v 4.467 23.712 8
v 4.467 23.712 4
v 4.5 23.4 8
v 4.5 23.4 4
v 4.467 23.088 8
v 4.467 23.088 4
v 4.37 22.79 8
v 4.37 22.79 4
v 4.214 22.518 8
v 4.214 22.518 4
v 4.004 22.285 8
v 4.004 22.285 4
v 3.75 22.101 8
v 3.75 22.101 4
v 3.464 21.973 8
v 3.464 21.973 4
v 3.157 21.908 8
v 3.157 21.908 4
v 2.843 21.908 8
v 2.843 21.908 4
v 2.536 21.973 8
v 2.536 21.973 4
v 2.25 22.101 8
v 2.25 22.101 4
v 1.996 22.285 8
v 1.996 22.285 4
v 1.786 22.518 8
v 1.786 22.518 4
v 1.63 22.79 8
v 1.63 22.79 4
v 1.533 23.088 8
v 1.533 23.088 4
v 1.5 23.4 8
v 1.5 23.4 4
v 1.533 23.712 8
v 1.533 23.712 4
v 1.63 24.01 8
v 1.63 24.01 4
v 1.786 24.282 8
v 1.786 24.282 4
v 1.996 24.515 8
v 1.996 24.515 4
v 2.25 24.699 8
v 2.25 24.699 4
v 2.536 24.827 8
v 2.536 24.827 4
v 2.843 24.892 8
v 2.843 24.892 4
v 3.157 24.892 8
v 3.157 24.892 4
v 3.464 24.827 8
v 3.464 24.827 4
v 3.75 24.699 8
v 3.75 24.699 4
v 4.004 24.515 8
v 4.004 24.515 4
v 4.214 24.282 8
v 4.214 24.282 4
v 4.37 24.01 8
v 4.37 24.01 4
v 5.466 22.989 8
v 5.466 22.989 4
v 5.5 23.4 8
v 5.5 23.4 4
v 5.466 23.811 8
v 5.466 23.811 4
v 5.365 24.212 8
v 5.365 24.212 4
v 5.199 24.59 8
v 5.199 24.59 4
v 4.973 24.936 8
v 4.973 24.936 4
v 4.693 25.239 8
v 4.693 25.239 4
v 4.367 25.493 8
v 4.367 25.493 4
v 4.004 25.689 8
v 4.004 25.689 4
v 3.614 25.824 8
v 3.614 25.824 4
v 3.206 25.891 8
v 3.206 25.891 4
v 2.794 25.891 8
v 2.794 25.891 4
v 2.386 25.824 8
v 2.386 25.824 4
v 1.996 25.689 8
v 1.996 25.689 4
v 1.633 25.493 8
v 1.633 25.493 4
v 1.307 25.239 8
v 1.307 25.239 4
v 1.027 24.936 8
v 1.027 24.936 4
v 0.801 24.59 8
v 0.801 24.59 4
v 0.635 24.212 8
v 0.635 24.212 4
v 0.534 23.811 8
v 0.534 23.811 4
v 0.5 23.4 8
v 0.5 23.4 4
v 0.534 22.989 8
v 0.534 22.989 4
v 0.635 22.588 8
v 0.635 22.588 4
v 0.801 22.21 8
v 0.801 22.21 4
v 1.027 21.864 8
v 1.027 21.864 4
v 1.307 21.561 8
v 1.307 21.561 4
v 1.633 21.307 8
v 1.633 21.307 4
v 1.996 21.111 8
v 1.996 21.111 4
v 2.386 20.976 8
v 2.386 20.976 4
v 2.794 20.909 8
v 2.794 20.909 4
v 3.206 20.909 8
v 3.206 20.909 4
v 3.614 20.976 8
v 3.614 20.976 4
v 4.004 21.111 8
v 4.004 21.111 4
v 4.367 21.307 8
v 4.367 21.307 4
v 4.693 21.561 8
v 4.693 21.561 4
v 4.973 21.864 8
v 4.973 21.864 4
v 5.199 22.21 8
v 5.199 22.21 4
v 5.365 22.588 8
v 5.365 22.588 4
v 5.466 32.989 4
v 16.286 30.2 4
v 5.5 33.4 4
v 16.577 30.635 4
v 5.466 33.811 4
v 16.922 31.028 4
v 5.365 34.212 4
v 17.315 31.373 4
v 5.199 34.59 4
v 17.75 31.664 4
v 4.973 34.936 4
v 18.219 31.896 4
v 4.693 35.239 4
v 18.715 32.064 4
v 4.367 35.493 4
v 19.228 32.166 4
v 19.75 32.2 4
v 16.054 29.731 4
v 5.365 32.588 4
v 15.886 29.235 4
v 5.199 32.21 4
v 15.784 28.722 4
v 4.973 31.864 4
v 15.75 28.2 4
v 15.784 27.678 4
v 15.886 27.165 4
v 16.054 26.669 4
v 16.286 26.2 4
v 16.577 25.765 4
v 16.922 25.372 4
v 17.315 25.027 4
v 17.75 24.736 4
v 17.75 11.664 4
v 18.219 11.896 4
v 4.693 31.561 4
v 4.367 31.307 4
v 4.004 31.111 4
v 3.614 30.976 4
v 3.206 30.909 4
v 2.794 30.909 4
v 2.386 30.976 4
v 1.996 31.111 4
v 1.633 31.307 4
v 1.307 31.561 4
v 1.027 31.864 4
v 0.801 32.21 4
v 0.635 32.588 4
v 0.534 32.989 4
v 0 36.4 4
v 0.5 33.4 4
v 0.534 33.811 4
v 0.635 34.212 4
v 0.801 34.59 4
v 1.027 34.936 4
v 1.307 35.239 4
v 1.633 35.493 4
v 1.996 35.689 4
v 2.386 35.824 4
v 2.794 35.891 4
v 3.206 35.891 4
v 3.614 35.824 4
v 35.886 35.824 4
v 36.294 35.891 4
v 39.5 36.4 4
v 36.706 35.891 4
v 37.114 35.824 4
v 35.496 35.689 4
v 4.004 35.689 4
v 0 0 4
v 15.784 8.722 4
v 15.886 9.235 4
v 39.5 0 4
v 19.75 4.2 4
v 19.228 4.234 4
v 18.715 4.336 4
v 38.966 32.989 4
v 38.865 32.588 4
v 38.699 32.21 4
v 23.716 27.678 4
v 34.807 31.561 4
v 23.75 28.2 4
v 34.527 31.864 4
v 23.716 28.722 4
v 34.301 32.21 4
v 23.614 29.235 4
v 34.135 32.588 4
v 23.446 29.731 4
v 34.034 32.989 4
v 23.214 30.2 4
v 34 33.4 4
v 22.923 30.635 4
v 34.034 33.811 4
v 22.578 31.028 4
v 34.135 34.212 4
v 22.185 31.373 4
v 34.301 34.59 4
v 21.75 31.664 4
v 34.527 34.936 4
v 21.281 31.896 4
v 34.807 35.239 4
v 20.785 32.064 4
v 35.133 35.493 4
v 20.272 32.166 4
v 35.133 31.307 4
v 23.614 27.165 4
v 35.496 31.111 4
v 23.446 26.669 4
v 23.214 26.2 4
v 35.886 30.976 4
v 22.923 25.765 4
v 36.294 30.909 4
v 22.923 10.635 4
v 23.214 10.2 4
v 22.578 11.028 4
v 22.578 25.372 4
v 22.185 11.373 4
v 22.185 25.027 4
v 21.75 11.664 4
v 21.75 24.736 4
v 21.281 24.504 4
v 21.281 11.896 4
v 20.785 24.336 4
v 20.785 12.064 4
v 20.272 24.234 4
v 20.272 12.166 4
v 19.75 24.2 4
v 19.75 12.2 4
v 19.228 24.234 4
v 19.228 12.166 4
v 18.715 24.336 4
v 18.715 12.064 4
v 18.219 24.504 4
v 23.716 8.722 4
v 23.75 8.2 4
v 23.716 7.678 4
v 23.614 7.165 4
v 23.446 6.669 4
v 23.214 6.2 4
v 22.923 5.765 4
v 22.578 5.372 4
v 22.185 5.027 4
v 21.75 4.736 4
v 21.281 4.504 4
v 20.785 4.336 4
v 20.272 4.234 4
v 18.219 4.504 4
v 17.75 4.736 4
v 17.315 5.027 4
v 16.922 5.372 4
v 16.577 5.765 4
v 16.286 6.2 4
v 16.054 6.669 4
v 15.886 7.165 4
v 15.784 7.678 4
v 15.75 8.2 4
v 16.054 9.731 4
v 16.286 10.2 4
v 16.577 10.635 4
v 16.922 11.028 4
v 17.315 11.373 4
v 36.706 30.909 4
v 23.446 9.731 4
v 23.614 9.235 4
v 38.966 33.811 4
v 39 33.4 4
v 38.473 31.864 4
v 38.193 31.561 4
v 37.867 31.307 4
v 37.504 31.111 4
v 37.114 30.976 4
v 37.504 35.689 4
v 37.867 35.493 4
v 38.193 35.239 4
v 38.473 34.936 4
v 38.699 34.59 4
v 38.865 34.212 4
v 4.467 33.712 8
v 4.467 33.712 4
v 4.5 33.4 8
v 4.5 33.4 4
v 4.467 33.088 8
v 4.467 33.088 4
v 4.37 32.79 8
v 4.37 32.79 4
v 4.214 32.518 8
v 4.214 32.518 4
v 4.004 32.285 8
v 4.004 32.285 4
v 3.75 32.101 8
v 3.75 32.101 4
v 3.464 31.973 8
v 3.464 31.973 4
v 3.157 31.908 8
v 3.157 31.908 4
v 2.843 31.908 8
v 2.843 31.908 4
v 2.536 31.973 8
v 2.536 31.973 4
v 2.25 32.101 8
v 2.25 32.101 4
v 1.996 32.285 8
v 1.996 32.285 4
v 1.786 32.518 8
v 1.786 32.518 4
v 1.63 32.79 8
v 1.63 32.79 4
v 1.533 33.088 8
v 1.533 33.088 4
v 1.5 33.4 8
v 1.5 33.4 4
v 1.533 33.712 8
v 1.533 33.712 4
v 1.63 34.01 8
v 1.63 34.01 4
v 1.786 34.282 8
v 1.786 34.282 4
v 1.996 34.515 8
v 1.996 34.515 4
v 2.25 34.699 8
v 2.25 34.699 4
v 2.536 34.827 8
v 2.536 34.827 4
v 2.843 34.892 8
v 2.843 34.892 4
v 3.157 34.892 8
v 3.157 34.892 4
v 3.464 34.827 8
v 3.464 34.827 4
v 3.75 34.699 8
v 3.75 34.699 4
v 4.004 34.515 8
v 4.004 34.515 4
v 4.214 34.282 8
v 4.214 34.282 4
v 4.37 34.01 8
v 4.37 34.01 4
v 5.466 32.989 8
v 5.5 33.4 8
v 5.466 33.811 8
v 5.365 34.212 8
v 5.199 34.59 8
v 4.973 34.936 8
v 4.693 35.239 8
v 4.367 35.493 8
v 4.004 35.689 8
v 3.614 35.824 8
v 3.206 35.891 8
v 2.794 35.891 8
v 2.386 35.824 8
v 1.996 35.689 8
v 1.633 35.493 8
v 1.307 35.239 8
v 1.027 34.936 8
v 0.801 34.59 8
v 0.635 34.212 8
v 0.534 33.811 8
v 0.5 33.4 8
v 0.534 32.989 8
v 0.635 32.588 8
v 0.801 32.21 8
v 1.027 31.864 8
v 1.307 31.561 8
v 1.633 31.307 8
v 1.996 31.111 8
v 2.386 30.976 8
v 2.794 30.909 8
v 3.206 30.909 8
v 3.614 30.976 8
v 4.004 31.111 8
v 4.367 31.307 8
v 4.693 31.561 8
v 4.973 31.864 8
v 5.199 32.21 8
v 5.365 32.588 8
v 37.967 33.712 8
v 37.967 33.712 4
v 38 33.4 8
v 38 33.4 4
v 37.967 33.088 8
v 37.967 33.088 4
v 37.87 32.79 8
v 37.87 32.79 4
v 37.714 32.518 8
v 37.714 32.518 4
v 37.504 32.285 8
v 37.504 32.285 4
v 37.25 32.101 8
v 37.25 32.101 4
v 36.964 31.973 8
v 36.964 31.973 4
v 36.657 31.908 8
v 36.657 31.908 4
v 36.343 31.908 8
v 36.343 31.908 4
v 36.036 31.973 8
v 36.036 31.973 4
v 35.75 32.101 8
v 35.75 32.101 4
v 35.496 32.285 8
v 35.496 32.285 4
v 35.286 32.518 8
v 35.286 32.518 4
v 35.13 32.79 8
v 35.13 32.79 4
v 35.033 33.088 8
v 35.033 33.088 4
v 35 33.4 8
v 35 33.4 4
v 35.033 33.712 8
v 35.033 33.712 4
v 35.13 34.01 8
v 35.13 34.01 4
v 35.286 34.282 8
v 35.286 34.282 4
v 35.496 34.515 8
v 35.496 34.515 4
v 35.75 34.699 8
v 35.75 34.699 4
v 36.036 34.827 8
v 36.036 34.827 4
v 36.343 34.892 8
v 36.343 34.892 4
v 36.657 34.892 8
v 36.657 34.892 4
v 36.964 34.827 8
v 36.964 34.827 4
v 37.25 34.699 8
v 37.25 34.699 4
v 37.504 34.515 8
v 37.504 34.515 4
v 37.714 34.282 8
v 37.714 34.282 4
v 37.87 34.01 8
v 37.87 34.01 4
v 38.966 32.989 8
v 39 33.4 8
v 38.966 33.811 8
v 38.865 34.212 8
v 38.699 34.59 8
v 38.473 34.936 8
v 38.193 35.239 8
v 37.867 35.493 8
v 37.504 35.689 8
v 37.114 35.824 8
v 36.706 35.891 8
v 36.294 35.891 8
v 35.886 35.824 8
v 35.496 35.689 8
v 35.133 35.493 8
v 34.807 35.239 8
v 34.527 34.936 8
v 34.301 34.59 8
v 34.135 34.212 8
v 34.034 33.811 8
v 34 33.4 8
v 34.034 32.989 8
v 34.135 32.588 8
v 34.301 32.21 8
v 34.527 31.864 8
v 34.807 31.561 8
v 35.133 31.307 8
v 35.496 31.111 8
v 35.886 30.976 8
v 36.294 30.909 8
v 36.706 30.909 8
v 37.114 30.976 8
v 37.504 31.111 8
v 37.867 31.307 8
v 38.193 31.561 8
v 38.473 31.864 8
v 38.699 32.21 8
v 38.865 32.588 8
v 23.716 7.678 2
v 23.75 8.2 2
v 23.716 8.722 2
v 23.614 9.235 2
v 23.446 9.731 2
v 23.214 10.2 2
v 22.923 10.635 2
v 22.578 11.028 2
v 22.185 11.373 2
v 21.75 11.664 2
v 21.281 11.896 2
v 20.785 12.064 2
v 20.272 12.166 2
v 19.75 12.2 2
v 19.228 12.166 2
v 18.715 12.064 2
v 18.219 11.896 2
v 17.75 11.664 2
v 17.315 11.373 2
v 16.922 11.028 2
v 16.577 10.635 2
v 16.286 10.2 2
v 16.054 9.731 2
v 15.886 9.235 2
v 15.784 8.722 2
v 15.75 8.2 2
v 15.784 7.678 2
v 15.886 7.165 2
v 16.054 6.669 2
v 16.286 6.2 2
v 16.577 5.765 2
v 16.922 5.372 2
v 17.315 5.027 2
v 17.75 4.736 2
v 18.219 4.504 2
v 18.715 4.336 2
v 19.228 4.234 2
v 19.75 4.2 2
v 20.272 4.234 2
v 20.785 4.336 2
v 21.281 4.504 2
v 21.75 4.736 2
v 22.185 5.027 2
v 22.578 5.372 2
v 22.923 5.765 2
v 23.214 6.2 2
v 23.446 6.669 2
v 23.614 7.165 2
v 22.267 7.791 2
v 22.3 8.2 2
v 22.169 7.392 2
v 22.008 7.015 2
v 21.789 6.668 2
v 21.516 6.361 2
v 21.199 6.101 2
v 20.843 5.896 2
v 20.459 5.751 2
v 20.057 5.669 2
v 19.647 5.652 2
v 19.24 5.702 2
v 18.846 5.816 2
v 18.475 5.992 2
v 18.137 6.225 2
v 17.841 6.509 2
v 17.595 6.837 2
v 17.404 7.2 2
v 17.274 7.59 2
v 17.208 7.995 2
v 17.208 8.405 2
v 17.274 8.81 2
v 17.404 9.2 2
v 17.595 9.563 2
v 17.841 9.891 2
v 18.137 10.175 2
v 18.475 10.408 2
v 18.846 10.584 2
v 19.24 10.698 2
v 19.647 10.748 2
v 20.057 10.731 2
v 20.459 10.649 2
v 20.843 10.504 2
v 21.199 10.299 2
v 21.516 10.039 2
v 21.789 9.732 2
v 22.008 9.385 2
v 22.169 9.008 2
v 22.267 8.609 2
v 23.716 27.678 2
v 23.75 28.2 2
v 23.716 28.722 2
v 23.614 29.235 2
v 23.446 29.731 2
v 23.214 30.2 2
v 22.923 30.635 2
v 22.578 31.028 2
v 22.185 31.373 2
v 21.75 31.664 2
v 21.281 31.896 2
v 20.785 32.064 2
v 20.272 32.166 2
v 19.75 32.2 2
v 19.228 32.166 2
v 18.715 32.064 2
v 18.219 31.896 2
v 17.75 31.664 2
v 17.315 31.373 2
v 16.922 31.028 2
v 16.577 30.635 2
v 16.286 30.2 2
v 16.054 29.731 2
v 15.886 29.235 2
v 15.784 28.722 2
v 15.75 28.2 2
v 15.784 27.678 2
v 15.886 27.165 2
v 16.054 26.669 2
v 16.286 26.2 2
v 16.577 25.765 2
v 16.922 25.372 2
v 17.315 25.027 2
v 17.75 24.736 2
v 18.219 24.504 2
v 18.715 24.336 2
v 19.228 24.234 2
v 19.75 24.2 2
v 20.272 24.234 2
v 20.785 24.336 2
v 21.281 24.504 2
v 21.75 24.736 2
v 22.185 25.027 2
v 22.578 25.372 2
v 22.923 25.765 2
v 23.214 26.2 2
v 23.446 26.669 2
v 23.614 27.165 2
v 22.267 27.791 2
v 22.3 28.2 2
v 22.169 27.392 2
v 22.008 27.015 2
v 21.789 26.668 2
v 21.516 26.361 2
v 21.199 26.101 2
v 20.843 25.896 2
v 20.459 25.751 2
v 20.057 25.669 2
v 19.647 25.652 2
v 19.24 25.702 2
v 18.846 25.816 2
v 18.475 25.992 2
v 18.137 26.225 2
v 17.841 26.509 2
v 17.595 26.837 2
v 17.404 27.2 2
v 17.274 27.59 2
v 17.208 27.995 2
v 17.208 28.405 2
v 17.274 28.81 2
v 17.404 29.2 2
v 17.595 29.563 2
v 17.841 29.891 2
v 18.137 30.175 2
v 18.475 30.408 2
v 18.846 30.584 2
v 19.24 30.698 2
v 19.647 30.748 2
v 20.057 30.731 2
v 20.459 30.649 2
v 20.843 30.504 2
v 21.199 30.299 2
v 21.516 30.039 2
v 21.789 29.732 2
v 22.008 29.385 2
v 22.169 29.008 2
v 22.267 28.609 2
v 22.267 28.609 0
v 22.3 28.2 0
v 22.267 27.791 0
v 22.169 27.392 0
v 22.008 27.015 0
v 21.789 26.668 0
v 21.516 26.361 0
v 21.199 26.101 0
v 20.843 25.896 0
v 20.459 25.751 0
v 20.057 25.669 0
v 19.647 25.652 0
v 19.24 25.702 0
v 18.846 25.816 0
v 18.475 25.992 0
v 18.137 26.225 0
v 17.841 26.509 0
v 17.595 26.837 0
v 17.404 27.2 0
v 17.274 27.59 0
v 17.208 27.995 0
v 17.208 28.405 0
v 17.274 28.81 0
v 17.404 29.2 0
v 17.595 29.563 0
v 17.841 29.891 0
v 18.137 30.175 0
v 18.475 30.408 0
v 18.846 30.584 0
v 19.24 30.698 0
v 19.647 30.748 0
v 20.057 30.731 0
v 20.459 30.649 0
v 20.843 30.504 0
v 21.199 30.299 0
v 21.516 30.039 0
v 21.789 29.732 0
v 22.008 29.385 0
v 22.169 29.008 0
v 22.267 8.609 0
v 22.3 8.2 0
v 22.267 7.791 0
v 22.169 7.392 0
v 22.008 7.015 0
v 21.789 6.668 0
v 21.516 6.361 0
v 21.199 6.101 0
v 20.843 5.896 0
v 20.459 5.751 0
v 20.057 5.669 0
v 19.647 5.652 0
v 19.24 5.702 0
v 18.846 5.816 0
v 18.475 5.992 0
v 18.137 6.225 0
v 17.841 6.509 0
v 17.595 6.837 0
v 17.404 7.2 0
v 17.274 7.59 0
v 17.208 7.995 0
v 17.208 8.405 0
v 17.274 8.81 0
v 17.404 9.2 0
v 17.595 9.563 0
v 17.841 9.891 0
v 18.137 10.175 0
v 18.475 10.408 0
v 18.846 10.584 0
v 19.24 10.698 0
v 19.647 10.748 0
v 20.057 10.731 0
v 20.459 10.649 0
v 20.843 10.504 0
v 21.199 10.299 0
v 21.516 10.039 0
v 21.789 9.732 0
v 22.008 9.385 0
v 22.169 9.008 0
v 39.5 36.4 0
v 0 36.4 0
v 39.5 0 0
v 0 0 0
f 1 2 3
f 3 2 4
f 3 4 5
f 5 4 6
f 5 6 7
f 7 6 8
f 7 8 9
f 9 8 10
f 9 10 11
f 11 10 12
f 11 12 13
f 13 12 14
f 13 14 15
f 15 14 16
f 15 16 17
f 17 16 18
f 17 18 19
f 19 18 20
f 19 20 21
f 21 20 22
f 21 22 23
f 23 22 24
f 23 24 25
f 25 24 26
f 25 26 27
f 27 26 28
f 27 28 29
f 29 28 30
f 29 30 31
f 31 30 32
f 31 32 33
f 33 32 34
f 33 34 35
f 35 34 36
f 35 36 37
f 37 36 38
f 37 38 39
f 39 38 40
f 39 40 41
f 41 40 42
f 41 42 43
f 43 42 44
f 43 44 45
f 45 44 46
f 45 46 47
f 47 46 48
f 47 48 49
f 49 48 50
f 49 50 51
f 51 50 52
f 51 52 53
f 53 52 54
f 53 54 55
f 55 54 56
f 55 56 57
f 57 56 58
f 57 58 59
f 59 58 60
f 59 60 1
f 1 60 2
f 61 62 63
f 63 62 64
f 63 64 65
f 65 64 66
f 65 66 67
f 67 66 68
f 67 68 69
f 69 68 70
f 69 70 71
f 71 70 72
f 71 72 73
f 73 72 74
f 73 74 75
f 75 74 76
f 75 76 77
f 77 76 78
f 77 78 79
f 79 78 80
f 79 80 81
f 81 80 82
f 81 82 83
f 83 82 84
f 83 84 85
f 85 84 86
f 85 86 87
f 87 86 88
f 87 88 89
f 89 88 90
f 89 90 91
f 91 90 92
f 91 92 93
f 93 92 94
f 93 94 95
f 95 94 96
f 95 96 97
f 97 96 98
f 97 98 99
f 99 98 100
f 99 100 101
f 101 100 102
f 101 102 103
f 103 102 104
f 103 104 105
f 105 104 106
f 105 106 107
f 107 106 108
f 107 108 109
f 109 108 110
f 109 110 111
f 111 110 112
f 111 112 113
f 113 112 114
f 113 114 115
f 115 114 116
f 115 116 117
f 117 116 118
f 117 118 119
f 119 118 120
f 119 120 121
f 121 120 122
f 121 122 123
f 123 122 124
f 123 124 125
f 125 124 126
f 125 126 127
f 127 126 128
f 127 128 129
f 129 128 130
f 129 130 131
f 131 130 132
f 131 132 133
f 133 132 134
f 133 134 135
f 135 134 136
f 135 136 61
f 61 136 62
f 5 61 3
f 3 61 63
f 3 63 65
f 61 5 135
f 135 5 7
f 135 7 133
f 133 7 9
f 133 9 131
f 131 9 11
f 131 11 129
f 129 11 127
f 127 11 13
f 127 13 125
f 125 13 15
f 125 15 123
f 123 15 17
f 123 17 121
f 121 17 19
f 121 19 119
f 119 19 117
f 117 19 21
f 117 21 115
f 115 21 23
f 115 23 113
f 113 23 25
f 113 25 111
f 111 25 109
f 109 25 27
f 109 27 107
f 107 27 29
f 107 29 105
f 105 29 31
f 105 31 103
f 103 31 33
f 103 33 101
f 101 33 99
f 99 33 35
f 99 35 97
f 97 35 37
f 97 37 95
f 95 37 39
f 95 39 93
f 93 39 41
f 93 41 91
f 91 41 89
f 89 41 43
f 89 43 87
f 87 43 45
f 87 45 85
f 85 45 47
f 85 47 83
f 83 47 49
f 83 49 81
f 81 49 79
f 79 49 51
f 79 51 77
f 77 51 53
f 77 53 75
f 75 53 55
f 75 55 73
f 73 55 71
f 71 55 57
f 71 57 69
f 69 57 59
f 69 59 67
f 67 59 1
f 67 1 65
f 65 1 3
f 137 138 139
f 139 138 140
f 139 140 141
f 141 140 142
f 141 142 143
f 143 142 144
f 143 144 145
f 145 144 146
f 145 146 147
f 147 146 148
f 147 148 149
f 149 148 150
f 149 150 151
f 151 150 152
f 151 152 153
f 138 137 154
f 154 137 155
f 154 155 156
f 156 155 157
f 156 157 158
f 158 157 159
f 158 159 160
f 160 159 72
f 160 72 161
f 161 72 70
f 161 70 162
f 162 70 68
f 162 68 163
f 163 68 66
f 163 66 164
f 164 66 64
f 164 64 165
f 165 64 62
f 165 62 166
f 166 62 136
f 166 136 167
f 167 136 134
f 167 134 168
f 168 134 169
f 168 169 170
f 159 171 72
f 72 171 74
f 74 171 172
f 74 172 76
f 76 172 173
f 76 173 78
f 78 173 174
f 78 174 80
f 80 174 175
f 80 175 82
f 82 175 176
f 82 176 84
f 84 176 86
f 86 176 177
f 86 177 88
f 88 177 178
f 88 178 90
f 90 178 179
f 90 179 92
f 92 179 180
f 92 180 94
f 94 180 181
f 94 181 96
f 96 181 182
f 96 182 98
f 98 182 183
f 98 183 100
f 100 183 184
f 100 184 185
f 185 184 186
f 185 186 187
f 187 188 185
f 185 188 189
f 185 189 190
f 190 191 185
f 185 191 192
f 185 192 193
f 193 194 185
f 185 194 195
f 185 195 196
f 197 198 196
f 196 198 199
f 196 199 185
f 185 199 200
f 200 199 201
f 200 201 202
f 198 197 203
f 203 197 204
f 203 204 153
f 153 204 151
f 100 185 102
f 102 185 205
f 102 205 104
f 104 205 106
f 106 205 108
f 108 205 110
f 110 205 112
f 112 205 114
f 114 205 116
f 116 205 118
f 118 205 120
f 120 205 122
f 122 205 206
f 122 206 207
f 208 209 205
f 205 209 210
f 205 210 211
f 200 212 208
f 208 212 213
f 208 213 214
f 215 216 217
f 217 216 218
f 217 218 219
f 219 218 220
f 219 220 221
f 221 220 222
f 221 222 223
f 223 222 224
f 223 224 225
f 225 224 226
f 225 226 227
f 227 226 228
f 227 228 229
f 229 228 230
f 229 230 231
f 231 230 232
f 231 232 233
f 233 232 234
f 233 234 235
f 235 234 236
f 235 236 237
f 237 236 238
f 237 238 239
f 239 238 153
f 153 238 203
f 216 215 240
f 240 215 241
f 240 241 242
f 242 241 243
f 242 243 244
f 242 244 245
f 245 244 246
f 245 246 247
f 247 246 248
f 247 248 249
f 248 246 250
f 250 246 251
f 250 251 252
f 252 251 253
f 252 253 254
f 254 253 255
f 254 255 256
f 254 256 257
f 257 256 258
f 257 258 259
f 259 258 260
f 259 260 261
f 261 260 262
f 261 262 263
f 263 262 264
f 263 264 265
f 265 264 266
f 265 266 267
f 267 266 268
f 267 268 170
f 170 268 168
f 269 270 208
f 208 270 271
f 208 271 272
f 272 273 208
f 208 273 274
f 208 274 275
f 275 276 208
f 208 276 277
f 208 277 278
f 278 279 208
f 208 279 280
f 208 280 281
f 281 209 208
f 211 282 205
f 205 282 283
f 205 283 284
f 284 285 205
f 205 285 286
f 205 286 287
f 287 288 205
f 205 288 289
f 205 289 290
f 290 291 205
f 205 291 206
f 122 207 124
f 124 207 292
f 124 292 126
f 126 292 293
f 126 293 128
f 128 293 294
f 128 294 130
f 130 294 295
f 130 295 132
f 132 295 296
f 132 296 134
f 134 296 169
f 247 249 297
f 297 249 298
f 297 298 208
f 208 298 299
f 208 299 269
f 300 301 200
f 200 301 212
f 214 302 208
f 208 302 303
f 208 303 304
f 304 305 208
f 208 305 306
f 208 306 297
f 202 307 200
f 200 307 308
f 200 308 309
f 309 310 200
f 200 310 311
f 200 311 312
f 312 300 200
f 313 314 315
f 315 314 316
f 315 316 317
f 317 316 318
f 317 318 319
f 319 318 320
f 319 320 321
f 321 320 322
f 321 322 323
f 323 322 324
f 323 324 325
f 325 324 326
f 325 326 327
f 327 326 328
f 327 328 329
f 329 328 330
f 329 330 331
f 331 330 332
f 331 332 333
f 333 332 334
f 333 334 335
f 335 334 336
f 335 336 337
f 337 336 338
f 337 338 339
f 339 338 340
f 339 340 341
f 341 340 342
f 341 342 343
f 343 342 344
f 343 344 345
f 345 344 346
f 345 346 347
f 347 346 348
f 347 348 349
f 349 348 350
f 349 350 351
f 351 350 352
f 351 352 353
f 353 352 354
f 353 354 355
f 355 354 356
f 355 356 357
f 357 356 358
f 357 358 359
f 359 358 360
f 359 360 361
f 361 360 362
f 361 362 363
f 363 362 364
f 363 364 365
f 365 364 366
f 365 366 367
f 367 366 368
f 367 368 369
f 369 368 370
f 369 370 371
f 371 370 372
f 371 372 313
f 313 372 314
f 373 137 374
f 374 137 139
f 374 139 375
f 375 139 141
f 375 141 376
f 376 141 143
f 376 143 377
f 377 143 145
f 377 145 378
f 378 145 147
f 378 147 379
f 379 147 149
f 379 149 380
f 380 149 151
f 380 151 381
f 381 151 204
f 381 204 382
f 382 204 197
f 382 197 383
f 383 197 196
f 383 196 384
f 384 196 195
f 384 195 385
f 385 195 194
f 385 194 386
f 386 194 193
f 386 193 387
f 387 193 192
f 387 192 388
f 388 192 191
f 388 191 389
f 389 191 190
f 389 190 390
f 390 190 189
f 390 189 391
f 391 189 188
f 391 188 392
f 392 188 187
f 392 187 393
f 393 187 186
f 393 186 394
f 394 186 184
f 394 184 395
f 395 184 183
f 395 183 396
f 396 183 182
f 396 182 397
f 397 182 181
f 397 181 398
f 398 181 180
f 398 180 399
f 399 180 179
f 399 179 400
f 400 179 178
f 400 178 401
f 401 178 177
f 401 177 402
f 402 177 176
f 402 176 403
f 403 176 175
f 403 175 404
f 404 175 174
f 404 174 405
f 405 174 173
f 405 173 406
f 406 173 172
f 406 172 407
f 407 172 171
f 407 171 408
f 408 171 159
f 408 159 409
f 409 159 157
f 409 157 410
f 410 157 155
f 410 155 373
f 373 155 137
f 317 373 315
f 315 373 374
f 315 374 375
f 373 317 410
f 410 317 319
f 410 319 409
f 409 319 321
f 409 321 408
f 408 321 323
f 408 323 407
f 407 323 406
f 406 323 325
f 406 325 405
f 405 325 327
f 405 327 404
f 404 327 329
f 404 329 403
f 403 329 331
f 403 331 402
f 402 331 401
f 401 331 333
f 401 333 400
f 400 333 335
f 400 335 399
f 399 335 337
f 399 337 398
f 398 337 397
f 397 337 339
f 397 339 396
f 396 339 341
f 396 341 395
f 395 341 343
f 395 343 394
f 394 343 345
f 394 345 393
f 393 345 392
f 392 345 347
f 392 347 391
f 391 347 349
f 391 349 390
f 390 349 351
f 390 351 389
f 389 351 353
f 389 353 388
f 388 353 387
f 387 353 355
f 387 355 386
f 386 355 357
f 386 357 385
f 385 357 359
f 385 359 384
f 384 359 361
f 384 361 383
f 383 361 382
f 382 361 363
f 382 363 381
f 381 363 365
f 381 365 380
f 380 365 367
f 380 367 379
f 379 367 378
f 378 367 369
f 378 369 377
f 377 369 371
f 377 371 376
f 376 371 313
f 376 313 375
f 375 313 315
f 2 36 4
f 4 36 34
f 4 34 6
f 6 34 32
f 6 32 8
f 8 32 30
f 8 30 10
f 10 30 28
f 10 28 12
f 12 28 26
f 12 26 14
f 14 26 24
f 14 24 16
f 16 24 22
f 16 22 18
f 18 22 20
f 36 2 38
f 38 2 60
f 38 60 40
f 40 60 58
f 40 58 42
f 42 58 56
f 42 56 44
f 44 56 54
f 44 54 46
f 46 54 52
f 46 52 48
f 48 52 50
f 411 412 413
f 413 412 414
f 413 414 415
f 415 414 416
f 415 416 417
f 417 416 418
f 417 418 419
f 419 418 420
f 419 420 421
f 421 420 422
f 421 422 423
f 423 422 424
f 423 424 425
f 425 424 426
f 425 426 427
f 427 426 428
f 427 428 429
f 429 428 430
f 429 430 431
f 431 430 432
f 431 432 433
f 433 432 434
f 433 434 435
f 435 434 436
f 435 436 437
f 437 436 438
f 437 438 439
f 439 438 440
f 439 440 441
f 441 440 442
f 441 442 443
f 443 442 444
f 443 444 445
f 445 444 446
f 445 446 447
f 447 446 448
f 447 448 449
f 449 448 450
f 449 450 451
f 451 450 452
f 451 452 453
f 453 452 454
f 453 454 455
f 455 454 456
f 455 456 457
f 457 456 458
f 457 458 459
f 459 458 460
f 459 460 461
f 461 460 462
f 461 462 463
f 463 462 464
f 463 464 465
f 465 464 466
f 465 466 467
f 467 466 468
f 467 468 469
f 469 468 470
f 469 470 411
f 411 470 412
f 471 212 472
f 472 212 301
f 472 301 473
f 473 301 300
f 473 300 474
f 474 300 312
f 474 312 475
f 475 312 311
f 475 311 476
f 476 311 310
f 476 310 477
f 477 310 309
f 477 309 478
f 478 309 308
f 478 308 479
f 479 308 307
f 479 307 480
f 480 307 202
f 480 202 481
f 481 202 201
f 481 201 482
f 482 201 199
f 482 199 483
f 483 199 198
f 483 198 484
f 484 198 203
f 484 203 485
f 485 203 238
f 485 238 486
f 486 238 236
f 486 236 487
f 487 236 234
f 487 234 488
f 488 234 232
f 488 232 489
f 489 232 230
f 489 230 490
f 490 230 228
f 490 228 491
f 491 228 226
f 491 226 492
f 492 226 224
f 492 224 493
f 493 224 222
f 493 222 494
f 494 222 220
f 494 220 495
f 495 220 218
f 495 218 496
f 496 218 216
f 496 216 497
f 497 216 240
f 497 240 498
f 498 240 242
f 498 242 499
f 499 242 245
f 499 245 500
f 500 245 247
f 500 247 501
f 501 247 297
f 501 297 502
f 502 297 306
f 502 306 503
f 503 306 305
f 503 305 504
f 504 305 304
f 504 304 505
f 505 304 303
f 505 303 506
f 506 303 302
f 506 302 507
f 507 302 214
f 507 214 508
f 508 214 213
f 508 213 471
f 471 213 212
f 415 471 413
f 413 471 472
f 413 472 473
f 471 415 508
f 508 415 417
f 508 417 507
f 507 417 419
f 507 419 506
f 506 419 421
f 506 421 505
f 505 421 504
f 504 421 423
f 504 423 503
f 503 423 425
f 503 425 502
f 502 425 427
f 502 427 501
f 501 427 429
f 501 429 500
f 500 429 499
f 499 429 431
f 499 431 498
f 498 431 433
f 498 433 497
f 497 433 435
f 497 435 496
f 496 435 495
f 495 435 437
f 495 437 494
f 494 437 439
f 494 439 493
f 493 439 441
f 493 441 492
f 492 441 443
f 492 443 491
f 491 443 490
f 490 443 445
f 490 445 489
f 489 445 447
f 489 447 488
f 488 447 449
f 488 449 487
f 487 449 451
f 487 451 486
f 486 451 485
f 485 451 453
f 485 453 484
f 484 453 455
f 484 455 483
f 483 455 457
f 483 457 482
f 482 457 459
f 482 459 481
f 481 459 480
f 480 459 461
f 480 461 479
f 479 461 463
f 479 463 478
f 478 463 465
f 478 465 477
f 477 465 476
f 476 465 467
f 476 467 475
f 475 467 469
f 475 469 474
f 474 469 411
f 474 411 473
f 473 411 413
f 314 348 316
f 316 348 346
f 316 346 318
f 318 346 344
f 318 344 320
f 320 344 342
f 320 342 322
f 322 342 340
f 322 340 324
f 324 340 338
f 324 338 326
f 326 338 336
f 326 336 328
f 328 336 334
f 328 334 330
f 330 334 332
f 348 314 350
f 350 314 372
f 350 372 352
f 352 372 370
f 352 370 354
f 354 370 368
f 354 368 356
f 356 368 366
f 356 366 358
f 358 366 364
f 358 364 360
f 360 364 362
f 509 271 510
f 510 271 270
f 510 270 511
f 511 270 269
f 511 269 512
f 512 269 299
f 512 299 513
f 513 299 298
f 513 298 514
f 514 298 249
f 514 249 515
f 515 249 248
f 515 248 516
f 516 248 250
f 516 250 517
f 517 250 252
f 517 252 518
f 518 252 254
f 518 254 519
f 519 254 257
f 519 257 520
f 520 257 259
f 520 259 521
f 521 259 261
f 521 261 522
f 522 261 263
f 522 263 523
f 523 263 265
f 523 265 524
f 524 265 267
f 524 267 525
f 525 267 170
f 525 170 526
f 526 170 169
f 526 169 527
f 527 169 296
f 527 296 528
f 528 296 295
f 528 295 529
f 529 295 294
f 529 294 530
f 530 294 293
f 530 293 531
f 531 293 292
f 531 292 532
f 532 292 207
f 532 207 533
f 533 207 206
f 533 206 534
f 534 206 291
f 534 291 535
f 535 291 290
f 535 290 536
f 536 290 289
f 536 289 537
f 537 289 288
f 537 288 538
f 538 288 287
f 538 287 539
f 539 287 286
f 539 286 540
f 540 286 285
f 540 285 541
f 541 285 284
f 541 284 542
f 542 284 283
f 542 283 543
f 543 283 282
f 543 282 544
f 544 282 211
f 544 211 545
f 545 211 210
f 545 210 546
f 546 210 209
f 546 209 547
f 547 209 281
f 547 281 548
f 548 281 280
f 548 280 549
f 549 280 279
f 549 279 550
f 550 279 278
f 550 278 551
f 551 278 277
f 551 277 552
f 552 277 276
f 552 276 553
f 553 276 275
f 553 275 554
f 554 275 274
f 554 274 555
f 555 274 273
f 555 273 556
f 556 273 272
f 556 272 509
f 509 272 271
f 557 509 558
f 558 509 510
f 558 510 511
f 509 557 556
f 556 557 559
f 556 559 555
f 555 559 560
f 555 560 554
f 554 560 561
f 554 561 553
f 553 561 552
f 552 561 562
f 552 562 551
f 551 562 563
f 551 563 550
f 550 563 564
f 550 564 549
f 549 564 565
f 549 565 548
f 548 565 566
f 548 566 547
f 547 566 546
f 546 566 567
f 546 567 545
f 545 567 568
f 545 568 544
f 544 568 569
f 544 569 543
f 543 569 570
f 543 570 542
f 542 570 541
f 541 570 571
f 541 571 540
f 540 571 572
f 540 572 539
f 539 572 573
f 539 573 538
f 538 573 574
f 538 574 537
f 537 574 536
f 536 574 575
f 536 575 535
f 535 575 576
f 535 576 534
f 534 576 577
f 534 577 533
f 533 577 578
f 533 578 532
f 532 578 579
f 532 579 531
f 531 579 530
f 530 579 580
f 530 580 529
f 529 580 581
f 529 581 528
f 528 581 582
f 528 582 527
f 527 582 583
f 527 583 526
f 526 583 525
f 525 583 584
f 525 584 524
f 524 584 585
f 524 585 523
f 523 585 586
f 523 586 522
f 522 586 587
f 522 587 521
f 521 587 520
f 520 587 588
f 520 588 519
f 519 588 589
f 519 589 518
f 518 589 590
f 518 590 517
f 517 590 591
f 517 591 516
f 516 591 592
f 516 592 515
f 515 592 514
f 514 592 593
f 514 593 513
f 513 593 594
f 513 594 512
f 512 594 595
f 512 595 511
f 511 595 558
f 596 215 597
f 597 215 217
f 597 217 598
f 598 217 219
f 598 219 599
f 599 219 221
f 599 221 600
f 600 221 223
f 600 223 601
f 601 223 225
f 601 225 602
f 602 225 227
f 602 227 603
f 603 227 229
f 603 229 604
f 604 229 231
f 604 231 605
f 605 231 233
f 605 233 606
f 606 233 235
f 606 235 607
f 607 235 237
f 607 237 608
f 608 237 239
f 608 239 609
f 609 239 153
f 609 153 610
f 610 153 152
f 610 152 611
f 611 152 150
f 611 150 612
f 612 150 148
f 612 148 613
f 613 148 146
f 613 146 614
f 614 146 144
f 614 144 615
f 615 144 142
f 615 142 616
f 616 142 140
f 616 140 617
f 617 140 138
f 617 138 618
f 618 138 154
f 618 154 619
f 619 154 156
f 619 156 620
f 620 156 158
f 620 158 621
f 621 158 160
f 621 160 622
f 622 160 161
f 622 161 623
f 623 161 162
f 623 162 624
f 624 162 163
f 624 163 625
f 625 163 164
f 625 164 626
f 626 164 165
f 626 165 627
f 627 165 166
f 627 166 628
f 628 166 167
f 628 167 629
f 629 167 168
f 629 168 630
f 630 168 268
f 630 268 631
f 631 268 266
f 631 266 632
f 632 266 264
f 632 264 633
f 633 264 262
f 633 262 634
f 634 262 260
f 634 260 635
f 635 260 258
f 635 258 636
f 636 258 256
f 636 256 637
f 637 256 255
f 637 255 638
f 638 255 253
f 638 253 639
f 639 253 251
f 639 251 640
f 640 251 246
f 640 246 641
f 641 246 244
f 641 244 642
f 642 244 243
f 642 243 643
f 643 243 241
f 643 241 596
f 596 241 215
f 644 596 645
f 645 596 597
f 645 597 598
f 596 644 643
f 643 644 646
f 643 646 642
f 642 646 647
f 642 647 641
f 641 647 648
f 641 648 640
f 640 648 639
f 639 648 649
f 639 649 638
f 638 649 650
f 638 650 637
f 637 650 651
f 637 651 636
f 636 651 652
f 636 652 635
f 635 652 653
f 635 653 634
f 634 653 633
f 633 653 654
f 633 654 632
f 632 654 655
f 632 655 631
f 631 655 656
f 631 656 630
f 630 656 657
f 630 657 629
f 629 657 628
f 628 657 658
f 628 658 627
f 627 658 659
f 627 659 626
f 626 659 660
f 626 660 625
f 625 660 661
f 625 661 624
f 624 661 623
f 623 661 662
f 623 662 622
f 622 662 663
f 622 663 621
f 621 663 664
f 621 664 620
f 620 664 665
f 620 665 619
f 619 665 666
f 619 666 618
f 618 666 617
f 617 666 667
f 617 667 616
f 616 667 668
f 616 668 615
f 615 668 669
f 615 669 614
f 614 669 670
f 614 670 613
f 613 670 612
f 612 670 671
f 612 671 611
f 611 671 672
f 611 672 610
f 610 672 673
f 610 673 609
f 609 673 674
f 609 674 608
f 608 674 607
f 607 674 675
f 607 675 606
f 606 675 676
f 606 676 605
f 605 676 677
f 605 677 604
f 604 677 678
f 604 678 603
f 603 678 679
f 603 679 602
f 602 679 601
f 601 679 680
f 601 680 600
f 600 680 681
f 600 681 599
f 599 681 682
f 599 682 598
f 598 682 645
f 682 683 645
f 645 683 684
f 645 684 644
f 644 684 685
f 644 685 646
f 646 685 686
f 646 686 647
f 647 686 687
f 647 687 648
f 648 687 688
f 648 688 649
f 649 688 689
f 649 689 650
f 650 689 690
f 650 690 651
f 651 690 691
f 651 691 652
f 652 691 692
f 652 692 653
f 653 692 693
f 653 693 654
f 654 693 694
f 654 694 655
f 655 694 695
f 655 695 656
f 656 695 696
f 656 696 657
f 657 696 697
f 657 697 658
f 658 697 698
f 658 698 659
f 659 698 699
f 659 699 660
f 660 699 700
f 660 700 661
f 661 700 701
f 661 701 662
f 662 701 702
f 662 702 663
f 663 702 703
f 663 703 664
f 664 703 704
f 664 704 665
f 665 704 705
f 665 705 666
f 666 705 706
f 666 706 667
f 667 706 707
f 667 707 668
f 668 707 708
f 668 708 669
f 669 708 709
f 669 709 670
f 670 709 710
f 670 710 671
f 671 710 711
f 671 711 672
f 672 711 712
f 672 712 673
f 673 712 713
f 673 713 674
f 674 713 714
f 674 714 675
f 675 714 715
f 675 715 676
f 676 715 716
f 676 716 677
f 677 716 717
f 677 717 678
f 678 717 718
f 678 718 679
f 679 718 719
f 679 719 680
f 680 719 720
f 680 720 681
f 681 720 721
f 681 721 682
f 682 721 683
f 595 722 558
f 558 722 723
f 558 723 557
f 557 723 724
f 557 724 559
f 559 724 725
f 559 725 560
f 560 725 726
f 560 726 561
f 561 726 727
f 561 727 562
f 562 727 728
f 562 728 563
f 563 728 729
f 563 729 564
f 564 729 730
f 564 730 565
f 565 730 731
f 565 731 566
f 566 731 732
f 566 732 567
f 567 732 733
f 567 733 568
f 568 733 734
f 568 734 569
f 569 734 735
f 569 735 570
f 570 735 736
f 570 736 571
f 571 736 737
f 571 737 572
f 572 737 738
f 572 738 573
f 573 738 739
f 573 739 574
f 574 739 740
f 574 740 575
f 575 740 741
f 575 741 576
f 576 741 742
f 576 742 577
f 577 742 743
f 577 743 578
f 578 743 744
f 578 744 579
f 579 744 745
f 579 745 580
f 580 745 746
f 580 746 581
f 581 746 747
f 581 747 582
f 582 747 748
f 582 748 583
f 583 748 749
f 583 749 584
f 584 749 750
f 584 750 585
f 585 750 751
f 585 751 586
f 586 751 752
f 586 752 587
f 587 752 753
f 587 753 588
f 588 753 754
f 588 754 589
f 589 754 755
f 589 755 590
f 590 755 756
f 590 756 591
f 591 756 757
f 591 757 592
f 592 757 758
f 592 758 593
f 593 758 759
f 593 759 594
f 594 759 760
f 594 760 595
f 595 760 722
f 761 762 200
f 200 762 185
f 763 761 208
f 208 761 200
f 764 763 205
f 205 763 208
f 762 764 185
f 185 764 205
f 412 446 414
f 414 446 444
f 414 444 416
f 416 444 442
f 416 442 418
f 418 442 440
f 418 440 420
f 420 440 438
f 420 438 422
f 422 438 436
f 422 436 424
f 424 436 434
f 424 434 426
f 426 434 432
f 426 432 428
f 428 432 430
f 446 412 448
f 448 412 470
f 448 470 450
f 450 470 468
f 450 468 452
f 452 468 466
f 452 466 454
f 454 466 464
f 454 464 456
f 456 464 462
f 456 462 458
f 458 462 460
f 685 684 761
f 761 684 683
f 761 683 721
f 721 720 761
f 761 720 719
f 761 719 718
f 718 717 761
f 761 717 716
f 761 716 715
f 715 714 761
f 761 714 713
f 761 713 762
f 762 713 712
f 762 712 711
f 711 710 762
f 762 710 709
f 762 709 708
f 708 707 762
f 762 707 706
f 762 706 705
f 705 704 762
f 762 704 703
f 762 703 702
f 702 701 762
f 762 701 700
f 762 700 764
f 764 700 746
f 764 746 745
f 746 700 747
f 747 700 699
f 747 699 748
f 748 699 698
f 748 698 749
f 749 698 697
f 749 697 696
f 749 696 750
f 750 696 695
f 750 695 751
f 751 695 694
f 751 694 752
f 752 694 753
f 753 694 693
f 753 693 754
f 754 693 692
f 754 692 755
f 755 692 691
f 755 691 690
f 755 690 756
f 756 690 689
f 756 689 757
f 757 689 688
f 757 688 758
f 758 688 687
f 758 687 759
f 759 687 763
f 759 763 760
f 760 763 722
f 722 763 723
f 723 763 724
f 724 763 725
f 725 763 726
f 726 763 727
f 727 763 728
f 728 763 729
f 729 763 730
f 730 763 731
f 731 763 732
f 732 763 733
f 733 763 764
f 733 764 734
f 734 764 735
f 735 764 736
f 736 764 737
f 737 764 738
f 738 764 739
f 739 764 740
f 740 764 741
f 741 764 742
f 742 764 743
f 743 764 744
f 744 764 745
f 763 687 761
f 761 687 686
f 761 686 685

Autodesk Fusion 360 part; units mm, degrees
sketch "Schizzo1" plane through (0, 0, 0) normal (0, 0, 1) x (1, 0, 0)
  line L0 (0, 0) -> (39.5, 0)
  line L1 (39.5, 0) -> (39.5, 36.4)
  line L2 (39.5, 36.4) -> (0, 36.4)
  line L3 (0, 36.4) -> (0, 0)
  dimension "d1" = 39.5
  dimension "d2" = 36.4
extrude "Estrusione1" add sketch "Schizzo1" along normal blind 4
sketch "Schizzo2" plane through (0, 0, 4) normal (0, 0, 1) x (-1, 0, 0)
  line L0 (0, -36.4) -> (0, 0)
  line L1 (0, 0) -> (-39.5, 0)
  line L2 (-39.5, 0) -> (-39.5, -36.4)
  line L3 (-39.5, -36.4) -> (0, -36.4)
  circle A0 centre (-19.75, -8.2) radius 2.55
  circle A1 centre (-19.75, -28.2) radius 2.55
  circle A2 centre (-19.75, -8.2) radius 4
  circle A3 centre (-19.75, -28.2) radius 4
  dimension "d5" = 5.1
  dimension "d6" = 5.1
  dimension "d7" = 8.2
  dimension "d8" = 19.75
  dimension "d9" = 8.2
  dimension "d10" = 19.75
  dimension "d11" = 8
  dimension "d12" = 8
extrude "Estrusione2" cut sketch "Schizzo2" against normal up to surface (4 mm away) contours A0
extrude "Estrusione3" cut sketch "Schizzo2" against normal up to surface (4 mm away) contours A1
extrude "Estrusione4" cut sketch "Schizzo2" against normal blind 2 contours A2 | A3
sketch "Schizzo3" plane through (0, 0, 4) normal (0, 0, 1) x (-1, 0, 0)
  circle A0 centre (-19.75, -8.2) radius 4
  circle A1 centre (-19.75, -28.2) radius 4
  line L0 (0, -36.4) -> (0, 0)
  line L1 (0, 0) -> (-39.5, 0)
  line L2 (-39.5, 0) -> (-39.5, -36.4)
  line L3 (-39.5, -36.4) -> (0, -36.4)
  line L4 (-39.5, -36.4) -> (0, -36.4)
  line L5 (0, -36.4) -> (0, -19.4)
  line L6 (0, -19.4) -> (-39.5, -19.4)
  line L7 (-39.5, -19.4) -> (-39.5, -36.4)
  circle A2 centre (-3, -23.4) radius 1.5
  circle A3 centre (-3, -33.4) radius 1.5
  circle A4 centre (-36.5, -33.4) radius 1.5
  circle A5 centre (-36.5, -33.4) radius 2.5
  circle A6 centre (-3, -33.4) radius 2.5
  circle A7 centre (-3, -23.4) radius 2.5
  dimension "d19" = 39.5
  dimension "d20" = 17
  dimension "d21" = 3
  dimension "d22" = 13
  dimension "d23" = 3
  dimension "d24" = 3
  dimension "d25" = 3
  dimension "d26" = 3
  dimension "d27" = 3
  dimension "d28" = 3
  dimension "d29" = 3
  dimension "d30" = 5
  dimension "d31" = 5
  dimension "d32" = 5
extrude "Estrusione5" add sketch "Schizzo3" along normal blind 4 contours A5 | A6 | A7
